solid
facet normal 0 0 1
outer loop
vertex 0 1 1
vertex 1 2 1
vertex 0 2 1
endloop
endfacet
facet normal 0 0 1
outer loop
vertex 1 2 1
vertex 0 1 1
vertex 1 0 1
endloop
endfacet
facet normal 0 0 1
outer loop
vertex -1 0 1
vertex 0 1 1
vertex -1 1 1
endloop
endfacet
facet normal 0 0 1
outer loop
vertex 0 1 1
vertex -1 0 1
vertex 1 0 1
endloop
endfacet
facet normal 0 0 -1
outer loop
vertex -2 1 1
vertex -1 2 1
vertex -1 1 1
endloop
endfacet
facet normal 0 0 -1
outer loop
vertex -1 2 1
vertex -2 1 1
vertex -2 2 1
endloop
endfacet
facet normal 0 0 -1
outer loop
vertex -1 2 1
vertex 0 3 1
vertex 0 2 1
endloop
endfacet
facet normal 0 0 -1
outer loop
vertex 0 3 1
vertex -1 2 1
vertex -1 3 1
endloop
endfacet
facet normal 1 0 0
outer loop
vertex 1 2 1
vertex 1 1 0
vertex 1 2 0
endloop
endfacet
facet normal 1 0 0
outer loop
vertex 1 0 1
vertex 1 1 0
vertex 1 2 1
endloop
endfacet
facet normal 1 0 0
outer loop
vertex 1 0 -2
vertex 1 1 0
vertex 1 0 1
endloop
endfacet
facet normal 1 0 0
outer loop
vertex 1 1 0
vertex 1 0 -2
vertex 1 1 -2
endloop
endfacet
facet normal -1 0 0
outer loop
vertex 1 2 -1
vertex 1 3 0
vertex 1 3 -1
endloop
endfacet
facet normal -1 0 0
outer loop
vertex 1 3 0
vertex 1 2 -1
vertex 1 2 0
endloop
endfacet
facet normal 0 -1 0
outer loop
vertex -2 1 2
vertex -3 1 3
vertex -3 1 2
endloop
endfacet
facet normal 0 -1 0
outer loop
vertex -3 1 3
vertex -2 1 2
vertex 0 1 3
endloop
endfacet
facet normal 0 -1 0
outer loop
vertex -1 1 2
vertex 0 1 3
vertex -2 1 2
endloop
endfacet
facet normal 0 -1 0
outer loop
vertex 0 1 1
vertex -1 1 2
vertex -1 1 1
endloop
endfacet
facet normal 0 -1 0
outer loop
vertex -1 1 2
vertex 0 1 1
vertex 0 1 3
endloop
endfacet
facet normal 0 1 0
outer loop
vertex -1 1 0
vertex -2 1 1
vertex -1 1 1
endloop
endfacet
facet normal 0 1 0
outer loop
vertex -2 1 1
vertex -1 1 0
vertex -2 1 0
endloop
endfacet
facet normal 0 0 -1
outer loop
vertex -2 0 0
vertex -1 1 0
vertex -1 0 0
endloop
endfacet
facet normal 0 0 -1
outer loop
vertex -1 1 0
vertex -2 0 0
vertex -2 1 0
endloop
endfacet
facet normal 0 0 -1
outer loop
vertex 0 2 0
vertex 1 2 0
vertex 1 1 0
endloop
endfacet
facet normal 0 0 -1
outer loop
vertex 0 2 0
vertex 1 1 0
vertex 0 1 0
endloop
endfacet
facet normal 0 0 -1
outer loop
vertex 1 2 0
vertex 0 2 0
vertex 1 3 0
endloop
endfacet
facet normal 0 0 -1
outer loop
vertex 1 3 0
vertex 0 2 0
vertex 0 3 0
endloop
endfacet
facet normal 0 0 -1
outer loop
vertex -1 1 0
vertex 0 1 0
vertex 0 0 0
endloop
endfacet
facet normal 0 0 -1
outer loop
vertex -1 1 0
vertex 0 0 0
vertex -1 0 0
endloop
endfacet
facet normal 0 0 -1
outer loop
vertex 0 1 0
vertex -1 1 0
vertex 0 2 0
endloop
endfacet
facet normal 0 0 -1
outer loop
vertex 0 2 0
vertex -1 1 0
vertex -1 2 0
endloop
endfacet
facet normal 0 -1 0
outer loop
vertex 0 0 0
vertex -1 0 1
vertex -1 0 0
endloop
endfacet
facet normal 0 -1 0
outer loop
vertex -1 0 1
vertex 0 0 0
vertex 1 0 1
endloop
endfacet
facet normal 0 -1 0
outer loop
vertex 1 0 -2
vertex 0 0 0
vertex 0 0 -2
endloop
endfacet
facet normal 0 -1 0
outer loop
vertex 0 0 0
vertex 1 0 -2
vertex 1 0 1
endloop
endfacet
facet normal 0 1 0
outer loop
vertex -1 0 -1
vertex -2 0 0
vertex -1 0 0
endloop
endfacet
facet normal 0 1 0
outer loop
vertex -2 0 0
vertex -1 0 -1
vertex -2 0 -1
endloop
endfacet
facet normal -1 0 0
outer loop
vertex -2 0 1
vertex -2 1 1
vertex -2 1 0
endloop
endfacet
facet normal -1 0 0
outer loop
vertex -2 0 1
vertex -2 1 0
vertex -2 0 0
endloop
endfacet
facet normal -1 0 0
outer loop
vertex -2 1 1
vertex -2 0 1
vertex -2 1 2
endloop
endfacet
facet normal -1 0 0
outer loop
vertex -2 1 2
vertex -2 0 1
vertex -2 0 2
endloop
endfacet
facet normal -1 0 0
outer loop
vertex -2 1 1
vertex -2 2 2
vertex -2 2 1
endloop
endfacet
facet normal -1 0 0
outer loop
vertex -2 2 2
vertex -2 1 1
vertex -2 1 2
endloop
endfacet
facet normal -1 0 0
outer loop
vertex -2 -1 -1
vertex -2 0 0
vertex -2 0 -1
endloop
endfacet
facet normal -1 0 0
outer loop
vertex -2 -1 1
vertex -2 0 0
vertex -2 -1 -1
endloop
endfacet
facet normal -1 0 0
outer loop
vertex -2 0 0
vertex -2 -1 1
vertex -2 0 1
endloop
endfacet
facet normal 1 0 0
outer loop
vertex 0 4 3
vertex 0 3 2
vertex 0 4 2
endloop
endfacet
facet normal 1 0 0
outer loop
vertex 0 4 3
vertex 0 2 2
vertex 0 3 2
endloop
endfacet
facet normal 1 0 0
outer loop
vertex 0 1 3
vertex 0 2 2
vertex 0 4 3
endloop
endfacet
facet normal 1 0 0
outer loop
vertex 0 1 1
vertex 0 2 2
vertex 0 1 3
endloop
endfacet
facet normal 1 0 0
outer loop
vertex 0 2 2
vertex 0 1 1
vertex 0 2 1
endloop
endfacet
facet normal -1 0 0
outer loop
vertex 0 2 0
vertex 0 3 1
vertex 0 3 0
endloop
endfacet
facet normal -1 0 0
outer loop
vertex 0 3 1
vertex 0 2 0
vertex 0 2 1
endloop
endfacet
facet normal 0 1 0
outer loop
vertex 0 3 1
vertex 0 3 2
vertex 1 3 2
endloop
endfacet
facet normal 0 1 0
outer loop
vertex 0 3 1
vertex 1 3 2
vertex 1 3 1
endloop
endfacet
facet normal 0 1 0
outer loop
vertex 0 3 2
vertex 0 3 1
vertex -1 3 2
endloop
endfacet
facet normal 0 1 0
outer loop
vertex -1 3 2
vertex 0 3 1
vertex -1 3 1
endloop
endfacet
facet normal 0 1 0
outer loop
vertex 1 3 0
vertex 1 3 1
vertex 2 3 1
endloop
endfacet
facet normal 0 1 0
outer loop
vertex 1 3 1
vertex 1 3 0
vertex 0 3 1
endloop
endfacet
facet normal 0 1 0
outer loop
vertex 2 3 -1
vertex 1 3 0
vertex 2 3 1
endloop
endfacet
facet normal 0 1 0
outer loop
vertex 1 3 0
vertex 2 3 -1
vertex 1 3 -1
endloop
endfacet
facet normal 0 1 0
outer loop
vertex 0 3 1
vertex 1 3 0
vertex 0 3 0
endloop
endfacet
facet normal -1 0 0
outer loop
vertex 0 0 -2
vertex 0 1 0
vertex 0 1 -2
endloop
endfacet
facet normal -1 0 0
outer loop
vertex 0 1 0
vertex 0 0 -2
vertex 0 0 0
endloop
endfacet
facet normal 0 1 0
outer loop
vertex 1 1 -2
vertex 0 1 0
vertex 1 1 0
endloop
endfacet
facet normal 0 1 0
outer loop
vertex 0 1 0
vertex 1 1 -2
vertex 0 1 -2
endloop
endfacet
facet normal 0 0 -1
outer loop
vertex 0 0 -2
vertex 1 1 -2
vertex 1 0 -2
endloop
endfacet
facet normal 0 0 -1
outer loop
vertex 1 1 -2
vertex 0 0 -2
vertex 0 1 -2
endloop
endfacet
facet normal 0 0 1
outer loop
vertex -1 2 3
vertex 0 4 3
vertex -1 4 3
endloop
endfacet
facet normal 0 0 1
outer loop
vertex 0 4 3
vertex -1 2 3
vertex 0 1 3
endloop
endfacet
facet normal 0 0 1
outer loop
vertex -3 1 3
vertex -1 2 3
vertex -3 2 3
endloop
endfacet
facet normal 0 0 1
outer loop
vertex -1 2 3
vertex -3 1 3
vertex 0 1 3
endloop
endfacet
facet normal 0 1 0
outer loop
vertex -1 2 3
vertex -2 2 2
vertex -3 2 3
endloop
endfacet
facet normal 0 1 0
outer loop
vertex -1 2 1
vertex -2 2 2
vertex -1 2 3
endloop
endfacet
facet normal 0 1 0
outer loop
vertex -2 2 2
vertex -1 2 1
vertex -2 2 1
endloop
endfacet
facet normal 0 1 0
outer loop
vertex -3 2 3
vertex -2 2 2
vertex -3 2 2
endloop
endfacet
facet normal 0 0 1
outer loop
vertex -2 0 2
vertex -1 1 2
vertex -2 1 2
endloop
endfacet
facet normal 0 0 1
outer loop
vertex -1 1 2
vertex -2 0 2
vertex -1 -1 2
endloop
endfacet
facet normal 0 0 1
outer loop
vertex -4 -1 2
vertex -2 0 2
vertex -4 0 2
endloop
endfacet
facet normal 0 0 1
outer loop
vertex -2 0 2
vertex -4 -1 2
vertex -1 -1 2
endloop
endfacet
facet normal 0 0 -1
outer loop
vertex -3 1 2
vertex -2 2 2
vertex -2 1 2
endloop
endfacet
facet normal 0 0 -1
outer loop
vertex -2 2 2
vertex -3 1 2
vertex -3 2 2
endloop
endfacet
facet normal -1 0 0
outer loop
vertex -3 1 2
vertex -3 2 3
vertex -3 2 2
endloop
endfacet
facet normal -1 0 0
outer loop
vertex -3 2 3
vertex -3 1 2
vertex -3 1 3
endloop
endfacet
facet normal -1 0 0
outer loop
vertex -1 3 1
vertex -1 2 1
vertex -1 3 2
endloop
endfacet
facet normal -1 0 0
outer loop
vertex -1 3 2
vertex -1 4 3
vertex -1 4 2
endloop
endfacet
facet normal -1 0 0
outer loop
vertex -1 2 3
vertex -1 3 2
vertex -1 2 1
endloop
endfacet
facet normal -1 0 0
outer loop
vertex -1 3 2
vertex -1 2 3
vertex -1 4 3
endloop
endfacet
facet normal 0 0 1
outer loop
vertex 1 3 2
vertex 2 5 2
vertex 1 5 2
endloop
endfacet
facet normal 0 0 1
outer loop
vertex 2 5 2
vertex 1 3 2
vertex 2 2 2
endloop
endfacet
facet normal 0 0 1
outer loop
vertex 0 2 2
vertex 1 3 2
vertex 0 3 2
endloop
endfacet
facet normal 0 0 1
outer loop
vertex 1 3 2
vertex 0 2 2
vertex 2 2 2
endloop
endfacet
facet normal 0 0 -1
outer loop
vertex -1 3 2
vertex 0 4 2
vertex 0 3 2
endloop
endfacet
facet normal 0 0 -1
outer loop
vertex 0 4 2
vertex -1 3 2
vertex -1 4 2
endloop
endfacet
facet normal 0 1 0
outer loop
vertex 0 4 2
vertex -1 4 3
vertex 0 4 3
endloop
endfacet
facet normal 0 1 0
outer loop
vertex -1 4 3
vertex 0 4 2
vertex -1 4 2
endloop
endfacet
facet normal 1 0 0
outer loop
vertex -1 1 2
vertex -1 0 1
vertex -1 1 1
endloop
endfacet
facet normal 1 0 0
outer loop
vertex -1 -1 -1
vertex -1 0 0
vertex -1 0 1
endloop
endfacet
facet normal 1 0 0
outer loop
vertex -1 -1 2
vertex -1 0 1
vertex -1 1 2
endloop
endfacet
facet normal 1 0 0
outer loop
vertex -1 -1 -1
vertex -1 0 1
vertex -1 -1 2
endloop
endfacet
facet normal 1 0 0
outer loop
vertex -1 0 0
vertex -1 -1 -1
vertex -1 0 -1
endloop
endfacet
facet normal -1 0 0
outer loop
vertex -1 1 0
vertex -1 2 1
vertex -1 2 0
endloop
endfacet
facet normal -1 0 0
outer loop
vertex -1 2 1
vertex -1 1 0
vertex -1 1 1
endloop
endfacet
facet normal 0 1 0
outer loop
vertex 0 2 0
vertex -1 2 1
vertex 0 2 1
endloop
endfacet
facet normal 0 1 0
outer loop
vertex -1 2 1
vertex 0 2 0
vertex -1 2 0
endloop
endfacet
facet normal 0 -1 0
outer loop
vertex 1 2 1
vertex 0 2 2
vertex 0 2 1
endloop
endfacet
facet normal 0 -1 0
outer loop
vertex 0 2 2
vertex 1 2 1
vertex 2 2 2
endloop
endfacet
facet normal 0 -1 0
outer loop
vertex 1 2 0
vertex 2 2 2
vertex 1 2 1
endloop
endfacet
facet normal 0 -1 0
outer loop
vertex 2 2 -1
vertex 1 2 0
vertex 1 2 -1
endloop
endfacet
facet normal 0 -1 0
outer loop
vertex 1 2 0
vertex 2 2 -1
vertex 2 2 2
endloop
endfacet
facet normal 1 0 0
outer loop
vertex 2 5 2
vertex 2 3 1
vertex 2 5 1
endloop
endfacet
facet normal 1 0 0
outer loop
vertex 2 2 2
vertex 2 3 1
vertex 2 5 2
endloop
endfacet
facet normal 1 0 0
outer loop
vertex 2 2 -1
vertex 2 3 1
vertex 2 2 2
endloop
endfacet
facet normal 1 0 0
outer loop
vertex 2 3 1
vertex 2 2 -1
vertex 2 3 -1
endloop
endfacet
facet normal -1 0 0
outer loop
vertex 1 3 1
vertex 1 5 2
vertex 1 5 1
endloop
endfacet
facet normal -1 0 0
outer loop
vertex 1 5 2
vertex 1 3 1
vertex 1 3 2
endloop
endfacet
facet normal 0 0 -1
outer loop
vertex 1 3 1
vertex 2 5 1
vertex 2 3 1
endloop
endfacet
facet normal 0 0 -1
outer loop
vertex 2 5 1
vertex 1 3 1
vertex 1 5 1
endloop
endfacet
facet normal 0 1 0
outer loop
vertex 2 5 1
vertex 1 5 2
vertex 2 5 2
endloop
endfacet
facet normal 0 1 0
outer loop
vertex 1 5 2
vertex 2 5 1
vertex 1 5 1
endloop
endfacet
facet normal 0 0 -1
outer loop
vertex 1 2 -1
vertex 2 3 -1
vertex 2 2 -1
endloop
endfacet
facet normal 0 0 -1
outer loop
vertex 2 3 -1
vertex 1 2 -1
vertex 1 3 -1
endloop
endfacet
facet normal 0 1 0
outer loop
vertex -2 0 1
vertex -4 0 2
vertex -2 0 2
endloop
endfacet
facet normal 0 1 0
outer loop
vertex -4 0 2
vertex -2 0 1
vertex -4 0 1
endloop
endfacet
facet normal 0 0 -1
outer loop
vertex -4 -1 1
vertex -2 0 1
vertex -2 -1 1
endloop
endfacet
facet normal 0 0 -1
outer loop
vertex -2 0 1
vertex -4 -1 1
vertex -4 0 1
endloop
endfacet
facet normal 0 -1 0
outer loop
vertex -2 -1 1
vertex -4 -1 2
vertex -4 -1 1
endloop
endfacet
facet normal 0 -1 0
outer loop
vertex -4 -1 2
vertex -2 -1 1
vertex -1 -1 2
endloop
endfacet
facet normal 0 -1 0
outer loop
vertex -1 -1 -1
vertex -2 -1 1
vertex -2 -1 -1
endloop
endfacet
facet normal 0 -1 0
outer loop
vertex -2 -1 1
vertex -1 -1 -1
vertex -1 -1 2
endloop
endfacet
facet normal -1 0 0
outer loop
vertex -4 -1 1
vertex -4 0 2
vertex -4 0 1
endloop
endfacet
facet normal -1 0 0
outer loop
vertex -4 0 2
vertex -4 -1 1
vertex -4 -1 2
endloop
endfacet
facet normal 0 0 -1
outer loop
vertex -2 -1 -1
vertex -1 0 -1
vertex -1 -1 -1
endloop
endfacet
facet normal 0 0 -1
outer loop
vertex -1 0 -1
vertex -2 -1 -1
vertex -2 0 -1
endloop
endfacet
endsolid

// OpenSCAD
/**
Model coded by Alejandro Baranek
With licence cc-by-sa 4.0

https://creativecommons.org/licenses/by-sa/4.0/
*/
module module_cube_4(translation= [0,0,0]){
    translate(translation)union() {
cube(1,1,1);    
translate([-1,0,0])cube(size = [1,1,1]);
translate([0,1,0])cube(size = [1,1,1]);
translate([0,0,-1])cube(size = [1,1,1]);
    }
};
module module_cube_7(translation= [0,0,0]){
    translate(translation)union() {
cube(1,1,1);    
translate([-2,0,0])cube(size = [2,1,1]);
translate([0,1,0])cube(size = [1,2,1]);
translate([0,0,-2])cube(size = [1,1,2]);
    }
};

color("blue")module_cube_7([0,0,0]);
module_cube_7([-1,1,2]);
module_cube_7([1,2,1]);
module_cube_7([-2,-1,1]);
